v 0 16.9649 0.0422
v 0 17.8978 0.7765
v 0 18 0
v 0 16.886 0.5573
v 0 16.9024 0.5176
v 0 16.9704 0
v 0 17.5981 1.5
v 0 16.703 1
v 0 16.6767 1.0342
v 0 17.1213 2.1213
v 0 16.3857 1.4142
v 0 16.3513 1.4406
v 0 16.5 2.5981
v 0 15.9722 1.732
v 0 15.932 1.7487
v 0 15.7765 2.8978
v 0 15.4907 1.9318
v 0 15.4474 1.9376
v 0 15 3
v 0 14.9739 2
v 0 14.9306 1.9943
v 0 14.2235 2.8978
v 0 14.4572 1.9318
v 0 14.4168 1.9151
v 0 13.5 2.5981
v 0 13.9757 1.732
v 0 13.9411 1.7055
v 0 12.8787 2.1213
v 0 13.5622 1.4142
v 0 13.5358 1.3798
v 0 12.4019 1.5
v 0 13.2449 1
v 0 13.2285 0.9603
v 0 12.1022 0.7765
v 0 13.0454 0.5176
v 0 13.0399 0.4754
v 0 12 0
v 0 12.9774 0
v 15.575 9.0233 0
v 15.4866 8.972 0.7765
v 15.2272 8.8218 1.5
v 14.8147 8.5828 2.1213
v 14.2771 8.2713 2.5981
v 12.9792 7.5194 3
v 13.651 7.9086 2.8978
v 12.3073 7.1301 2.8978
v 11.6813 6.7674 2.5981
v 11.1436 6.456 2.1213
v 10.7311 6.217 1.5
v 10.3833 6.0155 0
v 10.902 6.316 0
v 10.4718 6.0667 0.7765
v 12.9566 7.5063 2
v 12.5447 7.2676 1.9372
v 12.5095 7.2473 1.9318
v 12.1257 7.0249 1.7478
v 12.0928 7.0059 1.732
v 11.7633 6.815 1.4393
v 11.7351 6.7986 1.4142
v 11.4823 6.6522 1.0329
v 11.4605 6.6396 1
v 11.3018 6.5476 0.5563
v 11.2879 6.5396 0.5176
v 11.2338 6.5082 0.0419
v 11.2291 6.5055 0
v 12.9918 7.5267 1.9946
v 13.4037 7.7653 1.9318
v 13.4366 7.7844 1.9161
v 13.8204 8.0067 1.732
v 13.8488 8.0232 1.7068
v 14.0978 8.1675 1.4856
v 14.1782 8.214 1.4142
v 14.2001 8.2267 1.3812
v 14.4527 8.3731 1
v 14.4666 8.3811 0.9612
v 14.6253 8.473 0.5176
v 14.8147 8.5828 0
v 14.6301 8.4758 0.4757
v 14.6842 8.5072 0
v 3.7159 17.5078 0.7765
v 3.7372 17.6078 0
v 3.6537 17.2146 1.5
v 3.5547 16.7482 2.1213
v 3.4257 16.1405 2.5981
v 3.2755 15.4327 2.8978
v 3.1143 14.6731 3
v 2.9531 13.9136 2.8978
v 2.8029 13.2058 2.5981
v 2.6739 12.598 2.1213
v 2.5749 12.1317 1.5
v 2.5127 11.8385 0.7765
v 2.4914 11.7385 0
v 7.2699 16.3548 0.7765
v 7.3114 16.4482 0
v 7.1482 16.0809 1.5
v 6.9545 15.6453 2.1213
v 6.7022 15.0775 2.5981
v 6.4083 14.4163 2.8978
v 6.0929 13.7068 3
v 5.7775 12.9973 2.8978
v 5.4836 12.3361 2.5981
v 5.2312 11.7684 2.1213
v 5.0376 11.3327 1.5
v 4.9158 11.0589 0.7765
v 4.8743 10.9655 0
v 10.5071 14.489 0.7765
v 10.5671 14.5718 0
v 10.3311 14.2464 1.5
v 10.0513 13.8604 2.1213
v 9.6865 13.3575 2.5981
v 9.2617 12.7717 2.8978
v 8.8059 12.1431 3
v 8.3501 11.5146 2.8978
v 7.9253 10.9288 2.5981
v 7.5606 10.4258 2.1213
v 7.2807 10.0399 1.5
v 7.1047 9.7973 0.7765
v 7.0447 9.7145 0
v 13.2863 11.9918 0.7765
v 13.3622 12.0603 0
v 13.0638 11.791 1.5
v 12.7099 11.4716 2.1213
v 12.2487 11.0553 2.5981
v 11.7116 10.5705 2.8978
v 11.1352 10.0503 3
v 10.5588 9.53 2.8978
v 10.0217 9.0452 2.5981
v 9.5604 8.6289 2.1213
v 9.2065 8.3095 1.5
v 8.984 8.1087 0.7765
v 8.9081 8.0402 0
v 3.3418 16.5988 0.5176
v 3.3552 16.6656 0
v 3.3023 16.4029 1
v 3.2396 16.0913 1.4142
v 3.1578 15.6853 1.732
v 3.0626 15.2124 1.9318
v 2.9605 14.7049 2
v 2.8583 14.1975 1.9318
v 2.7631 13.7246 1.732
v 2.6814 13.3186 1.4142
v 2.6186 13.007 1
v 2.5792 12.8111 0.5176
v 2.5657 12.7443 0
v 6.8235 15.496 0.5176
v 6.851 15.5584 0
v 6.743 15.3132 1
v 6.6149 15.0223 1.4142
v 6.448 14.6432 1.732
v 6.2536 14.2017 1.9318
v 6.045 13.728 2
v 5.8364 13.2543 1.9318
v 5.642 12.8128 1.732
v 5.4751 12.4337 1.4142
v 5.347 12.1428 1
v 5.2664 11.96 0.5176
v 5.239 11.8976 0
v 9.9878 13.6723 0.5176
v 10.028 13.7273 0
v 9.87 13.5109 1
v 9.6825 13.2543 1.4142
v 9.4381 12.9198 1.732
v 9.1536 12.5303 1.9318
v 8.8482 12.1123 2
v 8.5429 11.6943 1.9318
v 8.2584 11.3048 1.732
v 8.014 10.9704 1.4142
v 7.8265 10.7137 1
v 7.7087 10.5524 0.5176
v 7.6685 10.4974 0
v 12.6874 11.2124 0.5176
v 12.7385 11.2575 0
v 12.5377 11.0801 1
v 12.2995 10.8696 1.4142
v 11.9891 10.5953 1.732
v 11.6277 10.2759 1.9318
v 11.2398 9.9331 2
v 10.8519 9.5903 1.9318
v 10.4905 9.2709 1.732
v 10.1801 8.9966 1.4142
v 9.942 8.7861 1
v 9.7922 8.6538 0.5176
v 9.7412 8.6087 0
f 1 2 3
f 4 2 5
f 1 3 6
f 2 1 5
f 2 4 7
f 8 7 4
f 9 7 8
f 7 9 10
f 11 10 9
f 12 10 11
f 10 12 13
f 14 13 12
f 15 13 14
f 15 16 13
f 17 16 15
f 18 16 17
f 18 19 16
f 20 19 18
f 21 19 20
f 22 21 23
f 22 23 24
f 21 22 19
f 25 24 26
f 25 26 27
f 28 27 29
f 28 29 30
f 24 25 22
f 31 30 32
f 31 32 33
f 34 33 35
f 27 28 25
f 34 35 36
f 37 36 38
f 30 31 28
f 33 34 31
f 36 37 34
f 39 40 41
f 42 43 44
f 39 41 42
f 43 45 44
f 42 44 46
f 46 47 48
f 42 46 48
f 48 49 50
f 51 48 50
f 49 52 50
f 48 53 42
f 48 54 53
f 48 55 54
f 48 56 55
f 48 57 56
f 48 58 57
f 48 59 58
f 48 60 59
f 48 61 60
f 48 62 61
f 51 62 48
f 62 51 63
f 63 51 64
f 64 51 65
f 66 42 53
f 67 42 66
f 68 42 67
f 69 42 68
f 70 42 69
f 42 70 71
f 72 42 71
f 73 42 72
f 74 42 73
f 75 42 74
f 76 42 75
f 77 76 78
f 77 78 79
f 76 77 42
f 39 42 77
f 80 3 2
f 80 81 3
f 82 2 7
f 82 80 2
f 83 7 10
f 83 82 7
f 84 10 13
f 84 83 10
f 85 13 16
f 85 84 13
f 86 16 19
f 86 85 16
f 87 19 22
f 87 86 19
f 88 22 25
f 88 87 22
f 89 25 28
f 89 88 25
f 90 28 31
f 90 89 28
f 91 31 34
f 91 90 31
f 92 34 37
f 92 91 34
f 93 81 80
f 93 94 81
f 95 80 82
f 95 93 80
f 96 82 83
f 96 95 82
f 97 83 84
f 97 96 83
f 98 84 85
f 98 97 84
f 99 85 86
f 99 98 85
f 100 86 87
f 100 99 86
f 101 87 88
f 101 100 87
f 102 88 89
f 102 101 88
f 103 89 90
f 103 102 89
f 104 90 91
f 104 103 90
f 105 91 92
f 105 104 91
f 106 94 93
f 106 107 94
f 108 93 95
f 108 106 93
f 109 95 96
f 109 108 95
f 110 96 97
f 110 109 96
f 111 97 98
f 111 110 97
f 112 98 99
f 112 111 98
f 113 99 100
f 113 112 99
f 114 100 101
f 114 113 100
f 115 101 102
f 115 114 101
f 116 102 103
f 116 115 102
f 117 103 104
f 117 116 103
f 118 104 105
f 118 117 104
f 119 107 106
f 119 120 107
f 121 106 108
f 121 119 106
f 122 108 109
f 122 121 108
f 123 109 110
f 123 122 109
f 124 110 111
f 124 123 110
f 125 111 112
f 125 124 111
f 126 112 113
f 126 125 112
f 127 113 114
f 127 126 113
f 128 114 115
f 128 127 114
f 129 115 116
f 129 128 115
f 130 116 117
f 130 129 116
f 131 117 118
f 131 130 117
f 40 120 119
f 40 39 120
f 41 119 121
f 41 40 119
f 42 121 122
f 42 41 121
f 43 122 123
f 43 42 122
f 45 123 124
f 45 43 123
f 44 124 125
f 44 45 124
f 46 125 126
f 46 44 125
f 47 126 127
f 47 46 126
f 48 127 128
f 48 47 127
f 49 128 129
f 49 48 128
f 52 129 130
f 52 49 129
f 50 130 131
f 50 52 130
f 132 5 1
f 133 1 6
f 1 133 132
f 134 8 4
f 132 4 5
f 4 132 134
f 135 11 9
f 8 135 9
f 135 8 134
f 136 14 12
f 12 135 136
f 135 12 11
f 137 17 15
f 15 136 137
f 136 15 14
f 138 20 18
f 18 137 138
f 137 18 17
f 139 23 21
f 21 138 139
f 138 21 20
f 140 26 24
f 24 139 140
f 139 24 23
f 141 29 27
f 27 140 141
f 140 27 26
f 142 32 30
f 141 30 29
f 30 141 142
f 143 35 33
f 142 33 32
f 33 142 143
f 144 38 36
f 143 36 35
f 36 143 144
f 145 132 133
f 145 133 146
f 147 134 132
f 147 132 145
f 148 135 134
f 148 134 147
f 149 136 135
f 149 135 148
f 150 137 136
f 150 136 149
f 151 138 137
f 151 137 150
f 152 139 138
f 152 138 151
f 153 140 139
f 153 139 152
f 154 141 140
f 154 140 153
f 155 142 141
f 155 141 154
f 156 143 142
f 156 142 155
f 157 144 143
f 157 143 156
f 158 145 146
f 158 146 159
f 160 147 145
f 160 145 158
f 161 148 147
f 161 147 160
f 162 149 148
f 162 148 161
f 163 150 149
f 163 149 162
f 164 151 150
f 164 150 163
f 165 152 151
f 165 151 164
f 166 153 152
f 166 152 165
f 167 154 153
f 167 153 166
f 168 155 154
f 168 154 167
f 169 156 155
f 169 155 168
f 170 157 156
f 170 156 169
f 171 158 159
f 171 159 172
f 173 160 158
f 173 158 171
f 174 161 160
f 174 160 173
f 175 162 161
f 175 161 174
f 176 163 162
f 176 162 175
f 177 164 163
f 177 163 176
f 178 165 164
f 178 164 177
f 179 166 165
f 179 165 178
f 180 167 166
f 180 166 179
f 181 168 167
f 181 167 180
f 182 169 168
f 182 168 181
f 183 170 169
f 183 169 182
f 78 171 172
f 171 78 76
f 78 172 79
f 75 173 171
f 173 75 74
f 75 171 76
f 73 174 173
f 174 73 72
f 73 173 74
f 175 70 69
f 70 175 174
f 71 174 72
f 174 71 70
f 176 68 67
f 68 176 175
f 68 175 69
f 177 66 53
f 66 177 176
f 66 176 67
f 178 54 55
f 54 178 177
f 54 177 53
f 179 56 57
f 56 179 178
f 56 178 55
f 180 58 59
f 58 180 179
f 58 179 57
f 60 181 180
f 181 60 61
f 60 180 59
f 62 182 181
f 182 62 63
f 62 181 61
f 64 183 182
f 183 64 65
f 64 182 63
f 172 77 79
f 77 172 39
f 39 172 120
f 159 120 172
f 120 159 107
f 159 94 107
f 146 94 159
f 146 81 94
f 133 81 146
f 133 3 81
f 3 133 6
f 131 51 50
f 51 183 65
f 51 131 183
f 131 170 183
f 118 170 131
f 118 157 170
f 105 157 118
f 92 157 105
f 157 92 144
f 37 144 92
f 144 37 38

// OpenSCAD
// file: ../build_environments.scad
// build_environments.scad: modules to build level sections
//

module pool(diameter=10.0, wall_height=2.0, step_width=3.0, connections=[])
{
    difference() {
        union() {
        difference() {
            cylinder(h=0.5,r1=diameter+step_width,r2=diameter+step_width,$fn=48);
            translate([0,0,-0.1])
                cylinder(h=0.7,r1=diameter,r2=diameter,$fn=48);
        }
        difference() {
            cylinder(h=wall_height,r1=diameter+step_width+1.0,r2=diameter+step_width+1.0,$fn=48);
            translate([0,0,-0.1])
                cylinder(h=wall_height+0.2,r1=diameter+step_width,r2=diameter+step_width,$fn=48);
        }
        }
    
        for (c = connections)
        {
            rotate([0,90,0]) {
                angle = atan2(c[1],c[0]);
                rotate([-angle,0,0]) {
                    cylinder(h=diameter+5.0,r1=c[2],r2=c[2],$fn=48);
                }
            }
        }
    }
}

module straight(length=10.0, width=2.0, dy1=0.0, dy2=0.0, dz=0.0)
{
    dims = [0, 0, 0, 0, 0, (dz/length)];
    matrix = [
        [ 1, dims[0], dims[1], 0 ],
        [ dims[2], 1, dims[4], 0 ],
        [ dims[5], dims[3], 1, 0 ],
        [ 0, 0, 0, 1 ]
    ];
    multmatrix(matrix)
    difference() {
        translate([dy1,0,0])
        union() {
            rotate([0,90,0]) {
                difference() {
                    cylinder(h=(length-dy1-dy2),r1=width+1.0,r2=width+1.0,$fn=24);
                    translate([0,0,-0.1])
                        cylinder(h=(length-dy1-dy2+0.2),r1=width,r2=width,$fn=24);
                }
                difference() {
                    cylinder(h=1.0,r1=width+2.0,r2=width+2.0,$fn=24);
                    translate([0,0,-0.1])
                        cylinder(h=1.2,r1=width,r2=width,$fn=24);
                }
                translate([0,0,(length-dy1-dy2)-1.0]) {
                    difference() {
                        cylinder(h=1.0,r1=width+2.0,r2=width+2.0,$fn=24);
                        translate([0,0,-0.1])
                            cylinder(h=1.2,r1=width,r2=width,$fn=24);
                    }
                }
            }
        }
        translate([0,0,-(2*width+4.0)/2])
            cube([3*length,3*length,2*width+4.0],center=true);
    }
}

module curve(p0=[0,0], center=[0,0], dir=1, angle=0.0, width=2.0)
{
    radius = sqrt((p0[0]-center[0])*(p0[0]-center[0]) + (p0[1]-center[1])*(p0[1]-center[1]));
    if (dir == 0) {
        difference() {
            rotate([0,0,-90])
            difference() {
                rotate_extrude(angle = angle, convexity = 10, $fn=32)
                    translate([radius, 0, 0])
                        circle(r = width+1.0,$fn=24);
                rotate([0,0,-1.0])
                    rotate_extrude(angle = angle+2.0, convexity = 10, $fn=32)
                        translate([radius, 0, 0])
                            circle(r = width,$fn=24);
            }
            translate([0,0,-(2*width+4.0)/2])
                cube([5*radius,5*radius,2*width+4.0],center=true);
        }
    }
    else {
        difference() {
            rotate([0,0,90])
            difference() {
                rotate_extrude(angle = -angle, convexity = 10, $fn=32)
                    translate([radius, 0, 0])
                        circle(r = width+1.0,$fn=24);
                rotate([0,0,1.0])
                    rotate_extrude(angle = -angle-2.0, convexity = 10, $fn=32)
                        translate([radius, 0, 0])
                            circle(r = width,$fn=24);
            }
            translate([0,0,-(2*width+4.0)/2])
                cube([5*radius,5*radius,2*width+4.0],center=true);
        }
    }

}

// test pool
//pool(diameter=12.0000, wall_height=3.0000, step_width=3.0000, connections=[[0.0000,-26.0000,2.0000], [23.6074,0.0000,2.0000]]);

// test straight, slope
//straight(length=26.0000, width=2.0000, dy1=11.8322, dy2=6.7082, dz=0.0000);
//straight(length=29.1549, width=12.0000, dy1=0.0000, dy2=0.0000, dz=-15.0000);

// test curve
//curve(p0=[23.6074, 0.0000], center=[23.6074, 5.0000], dir=0, angle=60.1011, width=2.0000);
//curve(p0=[33.6426, 12.4219], center=[37.9771, 9.9295], dir=1, angle=120.4627, width=2.0000);
// main file
use <../build_environments.scad>;
curve(p0=[-55.2400, -86.6553], center=[-69.7184, -82.7341], dir=1, angle=59.9145, width=2.0000);
